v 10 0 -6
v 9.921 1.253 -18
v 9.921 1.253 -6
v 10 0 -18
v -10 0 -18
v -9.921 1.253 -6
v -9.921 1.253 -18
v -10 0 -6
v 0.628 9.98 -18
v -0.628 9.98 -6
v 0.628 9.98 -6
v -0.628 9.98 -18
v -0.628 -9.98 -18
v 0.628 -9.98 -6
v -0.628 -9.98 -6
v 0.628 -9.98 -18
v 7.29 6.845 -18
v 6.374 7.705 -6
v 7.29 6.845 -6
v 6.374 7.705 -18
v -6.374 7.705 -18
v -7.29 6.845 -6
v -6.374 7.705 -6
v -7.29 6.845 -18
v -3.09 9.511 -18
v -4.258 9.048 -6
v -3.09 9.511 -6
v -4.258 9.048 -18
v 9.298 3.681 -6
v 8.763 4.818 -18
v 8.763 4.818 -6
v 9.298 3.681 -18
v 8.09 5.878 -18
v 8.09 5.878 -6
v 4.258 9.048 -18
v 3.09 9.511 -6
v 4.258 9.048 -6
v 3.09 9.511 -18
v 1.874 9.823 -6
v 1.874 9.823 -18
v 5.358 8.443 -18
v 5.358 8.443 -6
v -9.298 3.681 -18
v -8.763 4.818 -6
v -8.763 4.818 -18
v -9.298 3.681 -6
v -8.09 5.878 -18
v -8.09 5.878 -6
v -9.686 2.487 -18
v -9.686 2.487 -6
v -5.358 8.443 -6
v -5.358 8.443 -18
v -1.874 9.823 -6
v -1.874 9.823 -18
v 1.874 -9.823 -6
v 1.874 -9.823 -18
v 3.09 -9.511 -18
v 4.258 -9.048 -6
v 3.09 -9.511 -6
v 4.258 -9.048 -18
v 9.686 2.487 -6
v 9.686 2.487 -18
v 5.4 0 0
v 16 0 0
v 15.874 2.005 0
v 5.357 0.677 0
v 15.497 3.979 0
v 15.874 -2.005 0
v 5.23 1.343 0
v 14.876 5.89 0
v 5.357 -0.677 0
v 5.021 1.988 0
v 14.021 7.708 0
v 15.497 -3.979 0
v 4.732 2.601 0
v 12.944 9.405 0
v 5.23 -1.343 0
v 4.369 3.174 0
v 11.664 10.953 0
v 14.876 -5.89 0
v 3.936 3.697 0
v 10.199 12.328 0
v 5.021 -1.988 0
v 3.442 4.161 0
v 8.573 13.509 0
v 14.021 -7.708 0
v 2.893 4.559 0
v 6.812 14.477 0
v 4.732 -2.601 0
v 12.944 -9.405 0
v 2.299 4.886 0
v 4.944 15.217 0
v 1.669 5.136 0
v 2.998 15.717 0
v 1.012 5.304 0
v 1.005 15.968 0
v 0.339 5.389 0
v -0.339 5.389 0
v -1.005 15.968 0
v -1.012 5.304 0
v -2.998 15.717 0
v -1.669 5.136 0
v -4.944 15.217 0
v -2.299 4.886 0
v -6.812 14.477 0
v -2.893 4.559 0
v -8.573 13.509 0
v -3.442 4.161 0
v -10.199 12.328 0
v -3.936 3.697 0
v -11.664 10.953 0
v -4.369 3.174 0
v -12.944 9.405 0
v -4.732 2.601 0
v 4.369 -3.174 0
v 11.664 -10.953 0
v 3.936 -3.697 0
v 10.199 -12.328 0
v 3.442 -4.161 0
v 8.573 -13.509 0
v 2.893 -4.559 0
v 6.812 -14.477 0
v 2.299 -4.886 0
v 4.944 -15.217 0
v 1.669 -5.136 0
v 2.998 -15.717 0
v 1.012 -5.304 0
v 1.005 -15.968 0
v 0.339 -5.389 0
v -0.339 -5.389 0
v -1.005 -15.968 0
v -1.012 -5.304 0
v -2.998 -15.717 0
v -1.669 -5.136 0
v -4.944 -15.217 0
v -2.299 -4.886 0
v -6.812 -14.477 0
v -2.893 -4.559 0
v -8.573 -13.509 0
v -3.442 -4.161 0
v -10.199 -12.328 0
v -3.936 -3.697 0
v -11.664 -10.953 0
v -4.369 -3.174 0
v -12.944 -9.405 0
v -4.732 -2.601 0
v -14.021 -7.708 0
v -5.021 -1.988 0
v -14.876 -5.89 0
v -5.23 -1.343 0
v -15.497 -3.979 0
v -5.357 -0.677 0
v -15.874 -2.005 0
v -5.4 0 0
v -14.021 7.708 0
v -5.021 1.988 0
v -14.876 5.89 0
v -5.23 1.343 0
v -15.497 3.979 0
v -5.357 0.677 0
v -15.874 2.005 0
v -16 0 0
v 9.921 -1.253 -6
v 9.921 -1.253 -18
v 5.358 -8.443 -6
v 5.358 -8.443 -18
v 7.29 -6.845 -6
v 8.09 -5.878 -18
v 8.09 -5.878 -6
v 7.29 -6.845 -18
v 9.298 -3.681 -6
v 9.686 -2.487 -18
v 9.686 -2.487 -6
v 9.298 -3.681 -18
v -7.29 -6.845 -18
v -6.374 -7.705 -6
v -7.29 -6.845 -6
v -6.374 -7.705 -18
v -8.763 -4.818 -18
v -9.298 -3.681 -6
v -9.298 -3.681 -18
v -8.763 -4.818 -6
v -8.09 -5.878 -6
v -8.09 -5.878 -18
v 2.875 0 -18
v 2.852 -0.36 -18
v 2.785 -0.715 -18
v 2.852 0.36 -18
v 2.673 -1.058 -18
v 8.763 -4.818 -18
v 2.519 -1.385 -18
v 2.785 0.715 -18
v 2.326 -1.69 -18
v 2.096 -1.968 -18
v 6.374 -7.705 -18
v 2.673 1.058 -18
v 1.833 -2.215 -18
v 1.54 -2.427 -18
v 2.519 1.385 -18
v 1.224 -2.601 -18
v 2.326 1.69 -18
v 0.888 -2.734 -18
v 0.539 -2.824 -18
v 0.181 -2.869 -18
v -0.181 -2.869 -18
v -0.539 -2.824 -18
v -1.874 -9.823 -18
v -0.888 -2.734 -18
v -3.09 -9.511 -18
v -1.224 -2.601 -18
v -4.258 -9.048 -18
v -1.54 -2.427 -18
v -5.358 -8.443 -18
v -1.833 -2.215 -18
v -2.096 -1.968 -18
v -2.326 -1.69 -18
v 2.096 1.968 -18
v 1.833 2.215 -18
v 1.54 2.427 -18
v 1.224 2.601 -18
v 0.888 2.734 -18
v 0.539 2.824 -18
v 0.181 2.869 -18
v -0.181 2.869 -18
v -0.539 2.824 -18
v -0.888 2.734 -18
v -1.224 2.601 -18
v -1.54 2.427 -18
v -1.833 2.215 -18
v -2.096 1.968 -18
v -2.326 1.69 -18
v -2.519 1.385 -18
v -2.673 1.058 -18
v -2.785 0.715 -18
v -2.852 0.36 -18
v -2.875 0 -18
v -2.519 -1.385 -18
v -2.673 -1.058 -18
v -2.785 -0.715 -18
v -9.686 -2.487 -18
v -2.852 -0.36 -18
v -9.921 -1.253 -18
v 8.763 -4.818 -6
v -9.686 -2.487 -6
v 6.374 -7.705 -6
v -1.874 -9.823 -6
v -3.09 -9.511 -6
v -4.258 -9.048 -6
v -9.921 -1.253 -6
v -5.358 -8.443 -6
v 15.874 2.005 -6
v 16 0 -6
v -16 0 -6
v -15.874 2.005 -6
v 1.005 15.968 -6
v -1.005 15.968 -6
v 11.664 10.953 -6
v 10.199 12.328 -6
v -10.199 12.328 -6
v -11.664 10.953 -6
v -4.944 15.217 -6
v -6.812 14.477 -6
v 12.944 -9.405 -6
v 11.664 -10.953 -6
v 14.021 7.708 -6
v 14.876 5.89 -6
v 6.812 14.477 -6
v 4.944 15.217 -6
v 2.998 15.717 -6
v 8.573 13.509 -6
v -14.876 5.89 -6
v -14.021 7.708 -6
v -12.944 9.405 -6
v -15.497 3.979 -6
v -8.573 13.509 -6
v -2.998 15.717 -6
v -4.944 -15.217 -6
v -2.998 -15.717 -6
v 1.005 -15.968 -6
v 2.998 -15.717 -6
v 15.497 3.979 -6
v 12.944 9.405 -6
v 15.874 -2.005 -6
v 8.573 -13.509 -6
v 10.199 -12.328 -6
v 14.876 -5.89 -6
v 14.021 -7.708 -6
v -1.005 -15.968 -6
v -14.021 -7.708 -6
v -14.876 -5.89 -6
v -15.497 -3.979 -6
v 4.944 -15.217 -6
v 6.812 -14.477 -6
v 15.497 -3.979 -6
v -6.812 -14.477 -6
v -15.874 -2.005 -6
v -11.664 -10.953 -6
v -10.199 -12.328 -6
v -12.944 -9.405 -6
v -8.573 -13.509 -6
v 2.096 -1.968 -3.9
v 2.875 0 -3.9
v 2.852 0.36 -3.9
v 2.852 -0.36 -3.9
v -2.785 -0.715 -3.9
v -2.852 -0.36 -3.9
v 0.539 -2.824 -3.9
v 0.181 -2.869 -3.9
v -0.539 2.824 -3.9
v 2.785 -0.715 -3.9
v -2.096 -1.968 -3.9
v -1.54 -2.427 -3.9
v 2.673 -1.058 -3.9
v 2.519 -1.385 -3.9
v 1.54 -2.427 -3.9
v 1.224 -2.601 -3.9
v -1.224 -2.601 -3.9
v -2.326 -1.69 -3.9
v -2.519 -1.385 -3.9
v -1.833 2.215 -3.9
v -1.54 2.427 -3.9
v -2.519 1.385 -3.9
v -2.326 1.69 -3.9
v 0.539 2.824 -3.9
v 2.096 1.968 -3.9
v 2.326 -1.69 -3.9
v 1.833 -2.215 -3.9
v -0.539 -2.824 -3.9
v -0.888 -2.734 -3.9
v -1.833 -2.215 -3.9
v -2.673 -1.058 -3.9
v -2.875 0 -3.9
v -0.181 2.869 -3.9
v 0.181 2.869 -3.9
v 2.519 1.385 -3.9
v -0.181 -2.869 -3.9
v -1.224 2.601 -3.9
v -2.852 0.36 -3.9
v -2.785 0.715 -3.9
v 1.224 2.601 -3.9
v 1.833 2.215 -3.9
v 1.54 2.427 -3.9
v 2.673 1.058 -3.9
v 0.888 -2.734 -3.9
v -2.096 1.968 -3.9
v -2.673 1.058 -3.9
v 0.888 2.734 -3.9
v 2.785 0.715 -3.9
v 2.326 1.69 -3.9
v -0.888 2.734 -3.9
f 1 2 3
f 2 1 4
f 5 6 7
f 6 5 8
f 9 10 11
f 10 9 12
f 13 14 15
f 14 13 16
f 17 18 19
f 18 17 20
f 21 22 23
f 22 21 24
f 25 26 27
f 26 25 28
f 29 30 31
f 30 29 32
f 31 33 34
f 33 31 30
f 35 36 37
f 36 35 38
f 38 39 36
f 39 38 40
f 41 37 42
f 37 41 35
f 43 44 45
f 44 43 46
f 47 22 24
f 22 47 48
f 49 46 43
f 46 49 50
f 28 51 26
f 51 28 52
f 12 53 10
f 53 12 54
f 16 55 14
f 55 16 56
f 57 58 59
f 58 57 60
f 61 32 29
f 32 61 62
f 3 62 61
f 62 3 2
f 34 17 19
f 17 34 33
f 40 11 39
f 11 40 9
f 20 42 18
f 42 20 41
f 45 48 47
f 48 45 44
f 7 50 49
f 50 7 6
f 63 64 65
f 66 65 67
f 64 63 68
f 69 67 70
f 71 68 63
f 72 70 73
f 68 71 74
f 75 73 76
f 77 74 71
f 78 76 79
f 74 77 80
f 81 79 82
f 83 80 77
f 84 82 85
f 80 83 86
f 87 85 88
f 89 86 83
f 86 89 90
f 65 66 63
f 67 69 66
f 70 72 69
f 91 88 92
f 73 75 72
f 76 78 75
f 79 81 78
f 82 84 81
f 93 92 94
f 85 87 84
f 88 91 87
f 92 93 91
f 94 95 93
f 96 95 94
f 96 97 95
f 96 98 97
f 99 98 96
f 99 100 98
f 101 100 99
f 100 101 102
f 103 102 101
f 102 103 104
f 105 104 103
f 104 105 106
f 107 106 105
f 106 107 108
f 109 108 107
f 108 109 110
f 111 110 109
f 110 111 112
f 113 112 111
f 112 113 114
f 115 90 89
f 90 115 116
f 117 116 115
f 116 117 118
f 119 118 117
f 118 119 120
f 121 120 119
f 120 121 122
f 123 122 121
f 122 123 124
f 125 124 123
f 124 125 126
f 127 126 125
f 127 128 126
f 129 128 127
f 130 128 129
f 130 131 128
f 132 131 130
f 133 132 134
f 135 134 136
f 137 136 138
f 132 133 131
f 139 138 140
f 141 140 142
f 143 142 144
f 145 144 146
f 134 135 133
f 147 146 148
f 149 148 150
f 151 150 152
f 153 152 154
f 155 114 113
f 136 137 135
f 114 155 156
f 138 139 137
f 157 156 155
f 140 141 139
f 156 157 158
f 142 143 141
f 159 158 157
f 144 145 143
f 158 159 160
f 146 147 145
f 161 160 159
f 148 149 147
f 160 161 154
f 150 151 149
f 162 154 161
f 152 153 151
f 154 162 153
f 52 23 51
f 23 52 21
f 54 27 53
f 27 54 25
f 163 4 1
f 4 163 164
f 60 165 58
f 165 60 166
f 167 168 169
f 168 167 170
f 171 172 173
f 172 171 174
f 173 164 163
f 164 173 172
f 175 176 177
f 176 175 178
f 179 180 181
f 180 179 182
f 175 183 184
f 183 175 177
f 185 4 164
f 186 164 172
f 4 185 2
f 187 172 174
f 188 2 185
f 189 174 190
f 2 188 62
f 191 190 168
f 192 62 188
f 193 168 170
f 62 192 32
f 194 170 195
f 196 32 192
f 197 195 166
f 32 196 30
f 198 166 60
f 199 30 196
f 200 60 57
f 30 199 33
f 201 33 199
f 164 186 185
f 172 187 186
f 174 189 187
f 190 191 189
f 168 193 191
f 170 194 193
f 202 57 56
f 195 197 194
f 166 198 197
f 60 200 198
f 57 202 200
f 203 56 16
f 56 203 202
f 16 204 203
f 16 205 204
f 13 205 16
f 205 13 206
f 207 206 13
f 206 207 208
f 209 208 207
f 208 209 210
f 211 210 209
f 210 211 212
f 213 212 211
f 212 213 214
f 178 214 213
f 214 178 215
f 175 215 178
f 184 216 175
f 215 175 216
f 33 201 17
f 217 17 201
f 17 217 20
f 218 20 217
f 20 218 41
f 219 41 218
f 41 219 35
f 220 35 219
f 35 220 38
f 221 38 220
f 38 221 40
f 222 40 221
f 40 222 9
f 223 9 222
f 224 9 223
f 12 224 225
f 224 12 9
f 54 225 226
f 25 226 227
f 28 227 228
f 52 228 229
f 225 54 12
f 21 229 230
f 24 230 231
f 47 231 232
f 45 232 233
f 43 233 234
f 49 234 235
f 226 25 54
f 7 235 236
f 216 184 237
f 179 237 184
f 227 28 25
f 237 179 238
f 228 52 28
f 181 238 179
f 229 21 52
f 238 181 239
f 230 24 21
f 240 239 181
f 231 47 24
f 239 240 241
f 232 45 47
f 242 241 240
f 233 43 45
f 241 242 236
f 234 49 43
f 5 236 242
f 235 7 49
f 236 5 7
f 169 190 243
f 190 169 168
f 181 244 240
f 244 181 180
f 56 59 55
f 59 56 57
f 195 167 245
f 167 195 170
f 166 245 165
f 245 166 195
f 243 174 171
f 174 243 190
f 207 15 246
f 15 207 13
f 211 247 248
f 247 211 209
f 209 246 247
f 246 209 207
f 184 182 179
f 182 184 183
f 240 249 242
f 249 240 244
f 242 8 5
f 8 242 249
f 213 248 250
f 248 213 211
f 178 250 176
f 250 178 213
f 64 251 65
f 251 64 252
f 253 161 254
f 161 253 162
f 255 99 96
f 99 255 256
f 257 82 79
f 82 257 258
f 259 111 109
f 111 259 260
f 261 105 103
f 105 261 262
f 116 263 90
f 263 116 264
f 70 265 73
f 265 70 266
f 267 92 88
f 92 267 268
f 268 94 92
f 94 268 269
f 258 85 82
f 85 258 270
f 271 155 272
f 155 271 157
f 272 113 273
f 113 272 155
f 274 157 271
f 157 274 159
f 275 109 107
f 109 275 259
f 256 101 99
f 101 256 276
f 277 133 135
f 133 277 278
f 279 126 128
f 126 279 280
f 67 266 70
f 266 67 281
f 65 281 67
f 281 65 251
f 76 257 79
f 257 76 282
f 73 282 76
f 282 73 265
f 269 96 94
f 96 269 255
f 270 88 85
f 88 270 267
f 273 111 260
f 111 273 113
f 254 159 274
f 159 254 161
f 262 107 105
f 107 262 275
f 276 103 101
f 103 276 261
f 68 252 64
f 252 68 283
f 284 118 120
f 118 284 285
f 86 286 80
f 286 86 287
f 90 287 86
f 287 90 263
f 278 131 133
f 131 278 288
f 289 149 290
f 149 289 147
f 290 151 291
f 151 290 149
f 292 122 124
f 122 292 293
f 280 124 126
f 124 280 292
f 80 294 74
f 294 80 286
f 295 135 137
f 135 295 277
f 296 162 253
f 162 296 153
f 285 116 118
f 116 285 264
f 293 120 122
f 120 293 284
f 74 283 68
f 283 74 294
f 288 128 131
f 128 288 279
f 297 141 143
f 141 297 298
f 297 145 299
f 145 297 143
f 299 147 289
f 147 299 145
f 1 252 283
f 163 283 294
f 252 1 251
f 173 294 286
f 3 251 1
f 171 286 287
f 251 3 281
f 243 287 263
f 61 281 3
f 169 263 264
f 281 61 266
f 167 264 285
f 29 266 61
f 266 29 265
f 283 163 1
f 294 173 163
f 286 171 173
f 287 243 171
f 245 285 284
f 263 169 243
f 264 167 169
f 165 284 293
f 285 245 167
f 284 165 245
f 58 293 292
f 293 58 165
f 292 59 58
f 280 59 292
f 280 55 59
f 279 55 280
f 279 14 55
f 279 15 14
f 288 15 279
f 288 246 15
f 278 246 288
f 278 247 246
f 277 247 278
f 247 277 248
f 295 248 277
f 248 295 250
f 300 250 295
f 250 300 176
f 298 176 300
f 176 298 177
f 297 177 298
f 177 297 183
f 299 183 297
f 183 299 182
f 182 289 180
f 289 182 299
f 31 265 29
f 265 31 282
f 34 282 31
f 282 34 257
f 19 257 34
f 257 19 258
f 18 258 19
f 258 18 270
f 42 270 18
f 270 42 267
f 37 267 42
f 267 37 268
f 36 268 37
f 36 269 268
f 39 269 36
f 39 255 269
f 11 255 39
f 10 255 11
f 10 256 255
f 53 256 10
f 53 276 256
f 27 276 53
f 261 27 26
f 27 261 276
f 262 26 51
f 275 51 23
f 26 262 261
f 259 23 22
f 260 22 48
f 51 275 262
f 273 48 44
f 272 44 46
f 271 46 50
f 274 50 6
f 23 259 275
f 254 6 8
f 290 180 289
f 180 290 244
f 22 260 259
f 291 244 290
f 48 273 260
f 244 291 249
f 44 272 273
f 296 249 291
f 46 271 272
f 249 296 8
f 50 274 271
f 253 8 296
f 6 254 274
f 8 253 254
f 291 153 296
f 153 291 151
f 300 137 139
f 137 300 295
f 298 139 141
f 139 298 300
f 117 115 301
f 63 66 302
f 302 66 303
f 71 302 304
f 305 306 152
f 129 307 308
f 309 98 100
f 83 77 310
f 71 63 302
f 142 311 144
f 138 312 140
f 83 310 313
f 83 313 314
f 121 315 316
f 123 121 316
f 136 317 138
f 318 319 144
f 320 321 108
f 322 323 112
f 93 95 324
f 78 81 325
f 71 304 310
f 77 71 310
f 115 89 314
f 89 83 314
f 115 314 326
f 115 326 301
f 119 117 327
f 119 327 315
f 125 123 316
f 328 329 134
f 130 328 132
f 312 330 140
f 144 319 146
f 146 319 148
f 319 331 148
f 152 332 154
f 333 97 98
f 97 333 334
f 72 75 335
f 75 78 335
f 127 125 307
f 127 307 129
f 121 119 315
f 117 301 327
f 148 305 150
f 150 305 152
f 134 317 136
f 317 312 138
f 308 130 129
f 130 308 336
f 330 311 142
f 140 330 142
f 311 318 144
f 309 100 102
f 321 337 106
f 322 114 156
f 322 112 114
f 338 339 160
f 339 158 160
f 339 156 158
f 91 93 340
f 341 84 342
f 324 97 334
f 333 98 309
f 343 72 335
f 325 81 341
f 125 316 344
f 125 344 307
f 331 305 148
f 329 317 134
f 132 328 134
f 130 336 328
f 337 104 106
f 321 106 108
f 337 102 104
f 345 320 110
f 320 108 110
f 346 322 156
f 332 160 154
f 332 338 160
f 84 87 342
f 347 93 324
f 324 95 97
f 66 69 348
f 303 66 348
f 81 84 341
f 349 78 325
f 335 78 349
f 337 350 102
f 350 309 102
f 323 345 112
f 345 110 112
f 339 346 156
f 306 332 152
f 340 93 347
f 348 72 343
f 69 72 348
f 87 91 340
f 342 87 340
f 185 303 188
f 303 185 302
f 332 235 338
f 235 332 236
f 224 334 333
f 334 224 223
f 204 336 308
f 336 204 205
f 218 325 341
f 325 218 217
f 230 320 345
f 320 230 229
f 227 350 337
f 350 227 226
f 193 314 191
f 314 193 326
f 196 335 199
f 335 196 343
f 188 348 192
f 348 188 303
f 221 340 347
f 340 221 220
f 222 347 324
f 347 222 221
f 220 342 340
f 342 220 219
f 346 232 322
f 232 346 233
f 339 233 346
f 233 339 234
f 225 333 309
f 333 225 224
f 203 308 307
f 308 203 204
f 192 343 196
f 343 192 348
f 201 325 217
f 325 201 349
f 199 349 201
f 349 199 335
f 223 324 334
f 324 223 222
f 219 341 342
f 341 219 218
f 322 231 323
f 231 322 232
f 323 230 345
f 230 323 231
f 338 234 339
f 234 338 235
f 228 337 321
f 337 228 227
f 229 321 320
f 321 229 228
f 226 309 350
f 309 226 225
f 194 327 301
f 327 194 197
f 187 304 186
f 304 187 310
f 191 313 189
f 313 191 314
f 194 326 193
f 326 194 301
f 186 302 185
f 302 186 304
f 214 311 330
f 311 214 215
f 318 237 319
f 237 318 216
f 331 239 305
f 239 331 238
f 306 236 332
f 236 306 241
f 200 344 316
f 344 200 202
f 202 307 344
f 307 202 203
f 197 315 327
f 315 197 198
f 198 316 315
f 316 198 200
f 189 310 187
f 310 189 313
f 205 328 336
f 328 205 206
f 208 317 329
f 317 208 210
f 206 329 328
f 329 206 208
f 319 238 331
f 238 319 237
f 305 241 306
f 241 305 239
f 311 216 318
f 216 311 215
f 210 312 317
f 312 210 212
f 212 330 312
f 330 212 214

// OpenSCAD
$fn = 50;


difference() {
	union() {
		translate(v = [0, 0, -18.0000000000]) {
			cylinder(h = 18, r = 10.0000000000);
		}
		translate(v = [0, 0, -6.0000000000]) {
			cylinder(h = 6, r = 16.0000000000);
		}
	}
	union() {
		translate(v = [0, 0, 0]) {
			rotate(a = [0, 0, 0]) {
				difference() {
					union() {
						#translate(v = [0, 0, -18.0000000000]) {
							cylinder(h = 18, r = 2.6000000000);
						}
						#translate(v = [0, 0, -3.9000000000]) {
							cylinder(h = 3.9000000000, r = 10.0000000000, r1 = 2.8750000000, r2 = 5.4000000000);
						}
						#translate(v = [0, 0, -18.0000000000]) {
							cylinder(h = 18, r = 2.8750000000);
						}
						#translate(v = [0, 0, -18.0000000000]) {
							cylinder(h = 18, r = 2.6000000000);
						}
					}
					union();
				}
			}
		}
	}
}
